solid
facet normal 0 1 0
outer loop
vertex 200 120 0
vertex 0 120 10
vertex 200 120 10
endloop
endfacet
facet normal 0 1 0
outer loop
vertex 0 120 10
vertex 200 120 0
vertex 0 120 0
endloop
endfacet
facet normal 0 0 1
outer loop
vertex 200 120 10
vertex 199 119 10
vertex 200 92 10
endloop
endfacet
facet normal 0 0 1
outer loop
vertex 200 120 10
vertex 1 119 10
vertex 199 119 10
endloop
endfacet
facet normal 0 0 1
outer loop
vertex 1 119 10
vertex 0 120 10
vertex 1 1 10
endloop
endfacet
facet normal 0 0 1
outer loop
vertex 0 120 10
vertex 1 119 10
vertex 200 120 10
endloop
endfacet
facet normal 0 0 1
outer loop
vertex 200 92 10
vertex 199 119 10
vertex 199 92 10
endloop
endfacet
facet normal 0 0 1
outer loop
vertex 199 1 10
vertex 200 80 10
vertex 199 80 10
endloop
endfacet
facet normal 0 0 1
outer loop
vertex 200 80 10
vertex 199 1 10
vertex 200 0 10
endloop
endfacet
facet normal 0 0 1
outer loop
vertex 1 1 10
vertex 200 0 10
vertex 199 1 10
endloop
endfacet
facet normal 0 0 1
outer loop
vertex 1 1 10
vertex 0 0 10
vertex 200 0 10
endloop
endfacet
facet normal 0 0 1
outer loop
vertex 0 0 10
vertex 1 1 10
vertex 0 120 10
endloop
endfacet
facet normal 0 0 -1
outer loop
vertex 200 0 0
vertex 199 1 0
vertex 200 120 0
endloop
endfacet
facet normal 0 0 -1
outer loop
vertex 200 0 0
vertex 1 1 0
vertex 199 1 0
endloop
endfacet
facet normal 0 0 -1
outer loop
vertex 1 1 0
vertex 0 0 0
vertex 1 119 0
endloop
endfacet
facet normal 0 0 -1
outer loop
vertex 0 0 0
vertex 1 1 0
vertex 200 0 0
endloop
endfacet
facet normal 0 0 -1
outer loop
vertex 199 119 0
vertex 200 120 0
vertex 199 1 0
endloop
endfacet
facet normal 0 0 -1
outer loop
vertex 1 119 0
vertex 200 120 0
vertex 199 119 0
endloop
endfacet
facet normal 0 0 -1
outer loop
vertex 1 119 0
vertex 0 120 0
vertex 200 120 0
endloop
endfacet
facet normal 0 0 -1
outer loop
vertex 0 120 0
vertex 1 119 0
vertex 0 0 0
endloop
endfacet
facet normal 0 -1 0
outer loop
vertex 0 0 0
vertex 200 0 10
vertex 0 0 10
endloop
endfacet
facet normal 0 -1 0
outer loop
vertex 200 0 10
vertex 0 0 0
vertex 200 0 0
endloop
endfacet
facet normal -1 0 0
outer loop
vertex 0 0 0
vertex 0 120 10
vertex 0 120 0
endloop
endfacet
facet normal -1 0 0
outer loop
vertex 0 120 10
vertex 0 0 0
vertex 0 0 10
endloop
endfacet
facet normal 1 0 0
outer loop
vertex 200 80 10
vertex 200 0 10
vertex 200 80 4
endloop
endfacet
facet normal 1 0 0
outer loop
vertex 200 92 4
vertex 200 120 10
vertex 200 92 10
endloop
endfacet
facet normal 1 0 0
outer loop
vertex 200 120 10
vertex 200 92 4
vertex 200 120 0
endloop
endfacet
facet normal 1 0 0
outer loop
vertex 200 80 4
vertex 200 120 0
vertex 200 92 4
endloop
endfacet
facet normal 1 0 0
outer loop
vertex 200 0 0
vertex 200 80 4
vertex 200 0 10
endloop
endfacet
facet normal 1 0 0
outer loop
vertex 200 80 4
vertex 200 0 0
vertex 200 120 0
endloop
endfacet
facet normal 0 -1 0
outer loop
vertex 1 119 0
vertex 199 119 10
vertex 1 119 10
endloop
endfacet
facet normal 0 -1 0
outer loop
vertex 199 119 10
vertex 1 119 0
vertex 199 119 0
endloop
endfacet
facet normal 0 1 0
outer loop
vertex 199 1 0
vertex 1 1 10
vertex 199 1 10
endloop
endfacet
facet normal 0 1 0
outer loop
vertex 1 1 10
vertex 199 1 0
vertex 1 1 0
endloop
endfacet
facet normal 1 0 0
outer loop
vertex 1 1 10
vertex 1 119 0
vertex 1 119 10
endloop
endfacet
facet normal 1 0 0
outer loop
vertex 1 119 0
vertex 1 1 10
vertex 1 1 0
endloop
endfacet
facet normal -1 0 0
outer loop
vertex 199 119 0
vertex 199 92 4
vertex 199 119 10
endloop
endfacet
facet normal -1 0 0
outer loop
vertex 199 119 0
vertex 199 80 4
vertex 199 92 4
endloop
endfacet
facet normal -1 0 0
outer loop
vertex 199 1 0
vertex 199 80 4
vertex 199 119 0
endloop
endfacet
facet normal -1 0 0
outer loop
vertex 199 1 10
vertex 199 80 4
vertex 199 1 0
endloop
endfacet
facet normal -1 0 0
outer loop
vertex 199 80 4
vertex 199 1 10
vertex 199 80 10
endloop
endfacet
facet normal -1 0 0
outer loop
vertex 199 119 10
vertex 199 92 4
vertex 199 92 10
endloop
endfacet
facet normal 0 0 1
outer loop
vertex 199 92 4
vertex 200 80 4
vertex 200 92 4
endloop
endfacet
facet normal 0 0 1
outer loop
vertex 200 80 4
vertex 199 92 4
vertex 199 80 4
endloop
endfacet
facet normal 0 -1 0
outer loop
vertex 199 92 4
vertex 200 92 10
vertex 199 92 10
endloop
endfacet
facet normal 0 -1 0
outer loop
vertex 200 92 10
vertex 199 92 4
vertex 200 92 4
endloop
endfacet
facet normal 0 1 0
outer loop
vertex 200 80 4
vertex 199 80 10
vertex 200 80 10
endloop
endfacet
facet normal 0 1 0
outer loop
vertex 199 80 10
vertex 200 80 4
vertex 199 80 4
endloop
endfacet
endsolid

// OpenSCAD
// file: lib/Medidas.scad
Largo = 200;
Ancho = 120;
Grosor = 1;
Alto = 10;


Diametro = 0;
Alt_c = 0;


r_largo = 85;
r_ancho = 56;
r_dist_larg_center_tornillo = 58;
r_dist_anch_center_tornillo = 49;
r_dist_tornillo = 3.5;
r_diametro_interior_tornillo = 2.7;
r_grosor = 1.5*5;


r_sopraspi_altura = 3;
r_sopraspi_hueco = 2.9;
r_sopraspi_diametro = 6;


T_Largo=Largo;
T_Ancho=Ancho;
T_Alto=30;
T_Grosor=Grosor;
T_BiselY=T_Largo/6;
T_BiselZ=T_Alto-4;

en_x = 6.4;
en_y = 1.4;
en_z = 20;
en_colour = "green";
en_colour2 = "red";
boton = 4;
// main file
// Archivo: Looper_bottom.scad
// Incluye las medidas
include <lib/Medidas.scad>;
use <lib/Modulos.scad>

/*

difference()
{
translate([Largo/2, Ancho/2, Alto/2])
color("green")rectangulo_vacio_bordes_redondeados(Largo, Ancho, Alto, Grosor, Diametro, Alt_c);
translate([Largo-6, Ancho-(Ancho/3),0])
cube([12,12,6]);
    
}

*/

difference()
{
    rotate([0,0,90])
    translate([Ancho/2, -Largo/2, Alto/2])
    
    rectangulo_vacio(Ancho,Largo,Alto,Grosor);
    
    translate([Largo-6, Ancho-(Ancho/3),4])
    cube([10,12,6]);
}
